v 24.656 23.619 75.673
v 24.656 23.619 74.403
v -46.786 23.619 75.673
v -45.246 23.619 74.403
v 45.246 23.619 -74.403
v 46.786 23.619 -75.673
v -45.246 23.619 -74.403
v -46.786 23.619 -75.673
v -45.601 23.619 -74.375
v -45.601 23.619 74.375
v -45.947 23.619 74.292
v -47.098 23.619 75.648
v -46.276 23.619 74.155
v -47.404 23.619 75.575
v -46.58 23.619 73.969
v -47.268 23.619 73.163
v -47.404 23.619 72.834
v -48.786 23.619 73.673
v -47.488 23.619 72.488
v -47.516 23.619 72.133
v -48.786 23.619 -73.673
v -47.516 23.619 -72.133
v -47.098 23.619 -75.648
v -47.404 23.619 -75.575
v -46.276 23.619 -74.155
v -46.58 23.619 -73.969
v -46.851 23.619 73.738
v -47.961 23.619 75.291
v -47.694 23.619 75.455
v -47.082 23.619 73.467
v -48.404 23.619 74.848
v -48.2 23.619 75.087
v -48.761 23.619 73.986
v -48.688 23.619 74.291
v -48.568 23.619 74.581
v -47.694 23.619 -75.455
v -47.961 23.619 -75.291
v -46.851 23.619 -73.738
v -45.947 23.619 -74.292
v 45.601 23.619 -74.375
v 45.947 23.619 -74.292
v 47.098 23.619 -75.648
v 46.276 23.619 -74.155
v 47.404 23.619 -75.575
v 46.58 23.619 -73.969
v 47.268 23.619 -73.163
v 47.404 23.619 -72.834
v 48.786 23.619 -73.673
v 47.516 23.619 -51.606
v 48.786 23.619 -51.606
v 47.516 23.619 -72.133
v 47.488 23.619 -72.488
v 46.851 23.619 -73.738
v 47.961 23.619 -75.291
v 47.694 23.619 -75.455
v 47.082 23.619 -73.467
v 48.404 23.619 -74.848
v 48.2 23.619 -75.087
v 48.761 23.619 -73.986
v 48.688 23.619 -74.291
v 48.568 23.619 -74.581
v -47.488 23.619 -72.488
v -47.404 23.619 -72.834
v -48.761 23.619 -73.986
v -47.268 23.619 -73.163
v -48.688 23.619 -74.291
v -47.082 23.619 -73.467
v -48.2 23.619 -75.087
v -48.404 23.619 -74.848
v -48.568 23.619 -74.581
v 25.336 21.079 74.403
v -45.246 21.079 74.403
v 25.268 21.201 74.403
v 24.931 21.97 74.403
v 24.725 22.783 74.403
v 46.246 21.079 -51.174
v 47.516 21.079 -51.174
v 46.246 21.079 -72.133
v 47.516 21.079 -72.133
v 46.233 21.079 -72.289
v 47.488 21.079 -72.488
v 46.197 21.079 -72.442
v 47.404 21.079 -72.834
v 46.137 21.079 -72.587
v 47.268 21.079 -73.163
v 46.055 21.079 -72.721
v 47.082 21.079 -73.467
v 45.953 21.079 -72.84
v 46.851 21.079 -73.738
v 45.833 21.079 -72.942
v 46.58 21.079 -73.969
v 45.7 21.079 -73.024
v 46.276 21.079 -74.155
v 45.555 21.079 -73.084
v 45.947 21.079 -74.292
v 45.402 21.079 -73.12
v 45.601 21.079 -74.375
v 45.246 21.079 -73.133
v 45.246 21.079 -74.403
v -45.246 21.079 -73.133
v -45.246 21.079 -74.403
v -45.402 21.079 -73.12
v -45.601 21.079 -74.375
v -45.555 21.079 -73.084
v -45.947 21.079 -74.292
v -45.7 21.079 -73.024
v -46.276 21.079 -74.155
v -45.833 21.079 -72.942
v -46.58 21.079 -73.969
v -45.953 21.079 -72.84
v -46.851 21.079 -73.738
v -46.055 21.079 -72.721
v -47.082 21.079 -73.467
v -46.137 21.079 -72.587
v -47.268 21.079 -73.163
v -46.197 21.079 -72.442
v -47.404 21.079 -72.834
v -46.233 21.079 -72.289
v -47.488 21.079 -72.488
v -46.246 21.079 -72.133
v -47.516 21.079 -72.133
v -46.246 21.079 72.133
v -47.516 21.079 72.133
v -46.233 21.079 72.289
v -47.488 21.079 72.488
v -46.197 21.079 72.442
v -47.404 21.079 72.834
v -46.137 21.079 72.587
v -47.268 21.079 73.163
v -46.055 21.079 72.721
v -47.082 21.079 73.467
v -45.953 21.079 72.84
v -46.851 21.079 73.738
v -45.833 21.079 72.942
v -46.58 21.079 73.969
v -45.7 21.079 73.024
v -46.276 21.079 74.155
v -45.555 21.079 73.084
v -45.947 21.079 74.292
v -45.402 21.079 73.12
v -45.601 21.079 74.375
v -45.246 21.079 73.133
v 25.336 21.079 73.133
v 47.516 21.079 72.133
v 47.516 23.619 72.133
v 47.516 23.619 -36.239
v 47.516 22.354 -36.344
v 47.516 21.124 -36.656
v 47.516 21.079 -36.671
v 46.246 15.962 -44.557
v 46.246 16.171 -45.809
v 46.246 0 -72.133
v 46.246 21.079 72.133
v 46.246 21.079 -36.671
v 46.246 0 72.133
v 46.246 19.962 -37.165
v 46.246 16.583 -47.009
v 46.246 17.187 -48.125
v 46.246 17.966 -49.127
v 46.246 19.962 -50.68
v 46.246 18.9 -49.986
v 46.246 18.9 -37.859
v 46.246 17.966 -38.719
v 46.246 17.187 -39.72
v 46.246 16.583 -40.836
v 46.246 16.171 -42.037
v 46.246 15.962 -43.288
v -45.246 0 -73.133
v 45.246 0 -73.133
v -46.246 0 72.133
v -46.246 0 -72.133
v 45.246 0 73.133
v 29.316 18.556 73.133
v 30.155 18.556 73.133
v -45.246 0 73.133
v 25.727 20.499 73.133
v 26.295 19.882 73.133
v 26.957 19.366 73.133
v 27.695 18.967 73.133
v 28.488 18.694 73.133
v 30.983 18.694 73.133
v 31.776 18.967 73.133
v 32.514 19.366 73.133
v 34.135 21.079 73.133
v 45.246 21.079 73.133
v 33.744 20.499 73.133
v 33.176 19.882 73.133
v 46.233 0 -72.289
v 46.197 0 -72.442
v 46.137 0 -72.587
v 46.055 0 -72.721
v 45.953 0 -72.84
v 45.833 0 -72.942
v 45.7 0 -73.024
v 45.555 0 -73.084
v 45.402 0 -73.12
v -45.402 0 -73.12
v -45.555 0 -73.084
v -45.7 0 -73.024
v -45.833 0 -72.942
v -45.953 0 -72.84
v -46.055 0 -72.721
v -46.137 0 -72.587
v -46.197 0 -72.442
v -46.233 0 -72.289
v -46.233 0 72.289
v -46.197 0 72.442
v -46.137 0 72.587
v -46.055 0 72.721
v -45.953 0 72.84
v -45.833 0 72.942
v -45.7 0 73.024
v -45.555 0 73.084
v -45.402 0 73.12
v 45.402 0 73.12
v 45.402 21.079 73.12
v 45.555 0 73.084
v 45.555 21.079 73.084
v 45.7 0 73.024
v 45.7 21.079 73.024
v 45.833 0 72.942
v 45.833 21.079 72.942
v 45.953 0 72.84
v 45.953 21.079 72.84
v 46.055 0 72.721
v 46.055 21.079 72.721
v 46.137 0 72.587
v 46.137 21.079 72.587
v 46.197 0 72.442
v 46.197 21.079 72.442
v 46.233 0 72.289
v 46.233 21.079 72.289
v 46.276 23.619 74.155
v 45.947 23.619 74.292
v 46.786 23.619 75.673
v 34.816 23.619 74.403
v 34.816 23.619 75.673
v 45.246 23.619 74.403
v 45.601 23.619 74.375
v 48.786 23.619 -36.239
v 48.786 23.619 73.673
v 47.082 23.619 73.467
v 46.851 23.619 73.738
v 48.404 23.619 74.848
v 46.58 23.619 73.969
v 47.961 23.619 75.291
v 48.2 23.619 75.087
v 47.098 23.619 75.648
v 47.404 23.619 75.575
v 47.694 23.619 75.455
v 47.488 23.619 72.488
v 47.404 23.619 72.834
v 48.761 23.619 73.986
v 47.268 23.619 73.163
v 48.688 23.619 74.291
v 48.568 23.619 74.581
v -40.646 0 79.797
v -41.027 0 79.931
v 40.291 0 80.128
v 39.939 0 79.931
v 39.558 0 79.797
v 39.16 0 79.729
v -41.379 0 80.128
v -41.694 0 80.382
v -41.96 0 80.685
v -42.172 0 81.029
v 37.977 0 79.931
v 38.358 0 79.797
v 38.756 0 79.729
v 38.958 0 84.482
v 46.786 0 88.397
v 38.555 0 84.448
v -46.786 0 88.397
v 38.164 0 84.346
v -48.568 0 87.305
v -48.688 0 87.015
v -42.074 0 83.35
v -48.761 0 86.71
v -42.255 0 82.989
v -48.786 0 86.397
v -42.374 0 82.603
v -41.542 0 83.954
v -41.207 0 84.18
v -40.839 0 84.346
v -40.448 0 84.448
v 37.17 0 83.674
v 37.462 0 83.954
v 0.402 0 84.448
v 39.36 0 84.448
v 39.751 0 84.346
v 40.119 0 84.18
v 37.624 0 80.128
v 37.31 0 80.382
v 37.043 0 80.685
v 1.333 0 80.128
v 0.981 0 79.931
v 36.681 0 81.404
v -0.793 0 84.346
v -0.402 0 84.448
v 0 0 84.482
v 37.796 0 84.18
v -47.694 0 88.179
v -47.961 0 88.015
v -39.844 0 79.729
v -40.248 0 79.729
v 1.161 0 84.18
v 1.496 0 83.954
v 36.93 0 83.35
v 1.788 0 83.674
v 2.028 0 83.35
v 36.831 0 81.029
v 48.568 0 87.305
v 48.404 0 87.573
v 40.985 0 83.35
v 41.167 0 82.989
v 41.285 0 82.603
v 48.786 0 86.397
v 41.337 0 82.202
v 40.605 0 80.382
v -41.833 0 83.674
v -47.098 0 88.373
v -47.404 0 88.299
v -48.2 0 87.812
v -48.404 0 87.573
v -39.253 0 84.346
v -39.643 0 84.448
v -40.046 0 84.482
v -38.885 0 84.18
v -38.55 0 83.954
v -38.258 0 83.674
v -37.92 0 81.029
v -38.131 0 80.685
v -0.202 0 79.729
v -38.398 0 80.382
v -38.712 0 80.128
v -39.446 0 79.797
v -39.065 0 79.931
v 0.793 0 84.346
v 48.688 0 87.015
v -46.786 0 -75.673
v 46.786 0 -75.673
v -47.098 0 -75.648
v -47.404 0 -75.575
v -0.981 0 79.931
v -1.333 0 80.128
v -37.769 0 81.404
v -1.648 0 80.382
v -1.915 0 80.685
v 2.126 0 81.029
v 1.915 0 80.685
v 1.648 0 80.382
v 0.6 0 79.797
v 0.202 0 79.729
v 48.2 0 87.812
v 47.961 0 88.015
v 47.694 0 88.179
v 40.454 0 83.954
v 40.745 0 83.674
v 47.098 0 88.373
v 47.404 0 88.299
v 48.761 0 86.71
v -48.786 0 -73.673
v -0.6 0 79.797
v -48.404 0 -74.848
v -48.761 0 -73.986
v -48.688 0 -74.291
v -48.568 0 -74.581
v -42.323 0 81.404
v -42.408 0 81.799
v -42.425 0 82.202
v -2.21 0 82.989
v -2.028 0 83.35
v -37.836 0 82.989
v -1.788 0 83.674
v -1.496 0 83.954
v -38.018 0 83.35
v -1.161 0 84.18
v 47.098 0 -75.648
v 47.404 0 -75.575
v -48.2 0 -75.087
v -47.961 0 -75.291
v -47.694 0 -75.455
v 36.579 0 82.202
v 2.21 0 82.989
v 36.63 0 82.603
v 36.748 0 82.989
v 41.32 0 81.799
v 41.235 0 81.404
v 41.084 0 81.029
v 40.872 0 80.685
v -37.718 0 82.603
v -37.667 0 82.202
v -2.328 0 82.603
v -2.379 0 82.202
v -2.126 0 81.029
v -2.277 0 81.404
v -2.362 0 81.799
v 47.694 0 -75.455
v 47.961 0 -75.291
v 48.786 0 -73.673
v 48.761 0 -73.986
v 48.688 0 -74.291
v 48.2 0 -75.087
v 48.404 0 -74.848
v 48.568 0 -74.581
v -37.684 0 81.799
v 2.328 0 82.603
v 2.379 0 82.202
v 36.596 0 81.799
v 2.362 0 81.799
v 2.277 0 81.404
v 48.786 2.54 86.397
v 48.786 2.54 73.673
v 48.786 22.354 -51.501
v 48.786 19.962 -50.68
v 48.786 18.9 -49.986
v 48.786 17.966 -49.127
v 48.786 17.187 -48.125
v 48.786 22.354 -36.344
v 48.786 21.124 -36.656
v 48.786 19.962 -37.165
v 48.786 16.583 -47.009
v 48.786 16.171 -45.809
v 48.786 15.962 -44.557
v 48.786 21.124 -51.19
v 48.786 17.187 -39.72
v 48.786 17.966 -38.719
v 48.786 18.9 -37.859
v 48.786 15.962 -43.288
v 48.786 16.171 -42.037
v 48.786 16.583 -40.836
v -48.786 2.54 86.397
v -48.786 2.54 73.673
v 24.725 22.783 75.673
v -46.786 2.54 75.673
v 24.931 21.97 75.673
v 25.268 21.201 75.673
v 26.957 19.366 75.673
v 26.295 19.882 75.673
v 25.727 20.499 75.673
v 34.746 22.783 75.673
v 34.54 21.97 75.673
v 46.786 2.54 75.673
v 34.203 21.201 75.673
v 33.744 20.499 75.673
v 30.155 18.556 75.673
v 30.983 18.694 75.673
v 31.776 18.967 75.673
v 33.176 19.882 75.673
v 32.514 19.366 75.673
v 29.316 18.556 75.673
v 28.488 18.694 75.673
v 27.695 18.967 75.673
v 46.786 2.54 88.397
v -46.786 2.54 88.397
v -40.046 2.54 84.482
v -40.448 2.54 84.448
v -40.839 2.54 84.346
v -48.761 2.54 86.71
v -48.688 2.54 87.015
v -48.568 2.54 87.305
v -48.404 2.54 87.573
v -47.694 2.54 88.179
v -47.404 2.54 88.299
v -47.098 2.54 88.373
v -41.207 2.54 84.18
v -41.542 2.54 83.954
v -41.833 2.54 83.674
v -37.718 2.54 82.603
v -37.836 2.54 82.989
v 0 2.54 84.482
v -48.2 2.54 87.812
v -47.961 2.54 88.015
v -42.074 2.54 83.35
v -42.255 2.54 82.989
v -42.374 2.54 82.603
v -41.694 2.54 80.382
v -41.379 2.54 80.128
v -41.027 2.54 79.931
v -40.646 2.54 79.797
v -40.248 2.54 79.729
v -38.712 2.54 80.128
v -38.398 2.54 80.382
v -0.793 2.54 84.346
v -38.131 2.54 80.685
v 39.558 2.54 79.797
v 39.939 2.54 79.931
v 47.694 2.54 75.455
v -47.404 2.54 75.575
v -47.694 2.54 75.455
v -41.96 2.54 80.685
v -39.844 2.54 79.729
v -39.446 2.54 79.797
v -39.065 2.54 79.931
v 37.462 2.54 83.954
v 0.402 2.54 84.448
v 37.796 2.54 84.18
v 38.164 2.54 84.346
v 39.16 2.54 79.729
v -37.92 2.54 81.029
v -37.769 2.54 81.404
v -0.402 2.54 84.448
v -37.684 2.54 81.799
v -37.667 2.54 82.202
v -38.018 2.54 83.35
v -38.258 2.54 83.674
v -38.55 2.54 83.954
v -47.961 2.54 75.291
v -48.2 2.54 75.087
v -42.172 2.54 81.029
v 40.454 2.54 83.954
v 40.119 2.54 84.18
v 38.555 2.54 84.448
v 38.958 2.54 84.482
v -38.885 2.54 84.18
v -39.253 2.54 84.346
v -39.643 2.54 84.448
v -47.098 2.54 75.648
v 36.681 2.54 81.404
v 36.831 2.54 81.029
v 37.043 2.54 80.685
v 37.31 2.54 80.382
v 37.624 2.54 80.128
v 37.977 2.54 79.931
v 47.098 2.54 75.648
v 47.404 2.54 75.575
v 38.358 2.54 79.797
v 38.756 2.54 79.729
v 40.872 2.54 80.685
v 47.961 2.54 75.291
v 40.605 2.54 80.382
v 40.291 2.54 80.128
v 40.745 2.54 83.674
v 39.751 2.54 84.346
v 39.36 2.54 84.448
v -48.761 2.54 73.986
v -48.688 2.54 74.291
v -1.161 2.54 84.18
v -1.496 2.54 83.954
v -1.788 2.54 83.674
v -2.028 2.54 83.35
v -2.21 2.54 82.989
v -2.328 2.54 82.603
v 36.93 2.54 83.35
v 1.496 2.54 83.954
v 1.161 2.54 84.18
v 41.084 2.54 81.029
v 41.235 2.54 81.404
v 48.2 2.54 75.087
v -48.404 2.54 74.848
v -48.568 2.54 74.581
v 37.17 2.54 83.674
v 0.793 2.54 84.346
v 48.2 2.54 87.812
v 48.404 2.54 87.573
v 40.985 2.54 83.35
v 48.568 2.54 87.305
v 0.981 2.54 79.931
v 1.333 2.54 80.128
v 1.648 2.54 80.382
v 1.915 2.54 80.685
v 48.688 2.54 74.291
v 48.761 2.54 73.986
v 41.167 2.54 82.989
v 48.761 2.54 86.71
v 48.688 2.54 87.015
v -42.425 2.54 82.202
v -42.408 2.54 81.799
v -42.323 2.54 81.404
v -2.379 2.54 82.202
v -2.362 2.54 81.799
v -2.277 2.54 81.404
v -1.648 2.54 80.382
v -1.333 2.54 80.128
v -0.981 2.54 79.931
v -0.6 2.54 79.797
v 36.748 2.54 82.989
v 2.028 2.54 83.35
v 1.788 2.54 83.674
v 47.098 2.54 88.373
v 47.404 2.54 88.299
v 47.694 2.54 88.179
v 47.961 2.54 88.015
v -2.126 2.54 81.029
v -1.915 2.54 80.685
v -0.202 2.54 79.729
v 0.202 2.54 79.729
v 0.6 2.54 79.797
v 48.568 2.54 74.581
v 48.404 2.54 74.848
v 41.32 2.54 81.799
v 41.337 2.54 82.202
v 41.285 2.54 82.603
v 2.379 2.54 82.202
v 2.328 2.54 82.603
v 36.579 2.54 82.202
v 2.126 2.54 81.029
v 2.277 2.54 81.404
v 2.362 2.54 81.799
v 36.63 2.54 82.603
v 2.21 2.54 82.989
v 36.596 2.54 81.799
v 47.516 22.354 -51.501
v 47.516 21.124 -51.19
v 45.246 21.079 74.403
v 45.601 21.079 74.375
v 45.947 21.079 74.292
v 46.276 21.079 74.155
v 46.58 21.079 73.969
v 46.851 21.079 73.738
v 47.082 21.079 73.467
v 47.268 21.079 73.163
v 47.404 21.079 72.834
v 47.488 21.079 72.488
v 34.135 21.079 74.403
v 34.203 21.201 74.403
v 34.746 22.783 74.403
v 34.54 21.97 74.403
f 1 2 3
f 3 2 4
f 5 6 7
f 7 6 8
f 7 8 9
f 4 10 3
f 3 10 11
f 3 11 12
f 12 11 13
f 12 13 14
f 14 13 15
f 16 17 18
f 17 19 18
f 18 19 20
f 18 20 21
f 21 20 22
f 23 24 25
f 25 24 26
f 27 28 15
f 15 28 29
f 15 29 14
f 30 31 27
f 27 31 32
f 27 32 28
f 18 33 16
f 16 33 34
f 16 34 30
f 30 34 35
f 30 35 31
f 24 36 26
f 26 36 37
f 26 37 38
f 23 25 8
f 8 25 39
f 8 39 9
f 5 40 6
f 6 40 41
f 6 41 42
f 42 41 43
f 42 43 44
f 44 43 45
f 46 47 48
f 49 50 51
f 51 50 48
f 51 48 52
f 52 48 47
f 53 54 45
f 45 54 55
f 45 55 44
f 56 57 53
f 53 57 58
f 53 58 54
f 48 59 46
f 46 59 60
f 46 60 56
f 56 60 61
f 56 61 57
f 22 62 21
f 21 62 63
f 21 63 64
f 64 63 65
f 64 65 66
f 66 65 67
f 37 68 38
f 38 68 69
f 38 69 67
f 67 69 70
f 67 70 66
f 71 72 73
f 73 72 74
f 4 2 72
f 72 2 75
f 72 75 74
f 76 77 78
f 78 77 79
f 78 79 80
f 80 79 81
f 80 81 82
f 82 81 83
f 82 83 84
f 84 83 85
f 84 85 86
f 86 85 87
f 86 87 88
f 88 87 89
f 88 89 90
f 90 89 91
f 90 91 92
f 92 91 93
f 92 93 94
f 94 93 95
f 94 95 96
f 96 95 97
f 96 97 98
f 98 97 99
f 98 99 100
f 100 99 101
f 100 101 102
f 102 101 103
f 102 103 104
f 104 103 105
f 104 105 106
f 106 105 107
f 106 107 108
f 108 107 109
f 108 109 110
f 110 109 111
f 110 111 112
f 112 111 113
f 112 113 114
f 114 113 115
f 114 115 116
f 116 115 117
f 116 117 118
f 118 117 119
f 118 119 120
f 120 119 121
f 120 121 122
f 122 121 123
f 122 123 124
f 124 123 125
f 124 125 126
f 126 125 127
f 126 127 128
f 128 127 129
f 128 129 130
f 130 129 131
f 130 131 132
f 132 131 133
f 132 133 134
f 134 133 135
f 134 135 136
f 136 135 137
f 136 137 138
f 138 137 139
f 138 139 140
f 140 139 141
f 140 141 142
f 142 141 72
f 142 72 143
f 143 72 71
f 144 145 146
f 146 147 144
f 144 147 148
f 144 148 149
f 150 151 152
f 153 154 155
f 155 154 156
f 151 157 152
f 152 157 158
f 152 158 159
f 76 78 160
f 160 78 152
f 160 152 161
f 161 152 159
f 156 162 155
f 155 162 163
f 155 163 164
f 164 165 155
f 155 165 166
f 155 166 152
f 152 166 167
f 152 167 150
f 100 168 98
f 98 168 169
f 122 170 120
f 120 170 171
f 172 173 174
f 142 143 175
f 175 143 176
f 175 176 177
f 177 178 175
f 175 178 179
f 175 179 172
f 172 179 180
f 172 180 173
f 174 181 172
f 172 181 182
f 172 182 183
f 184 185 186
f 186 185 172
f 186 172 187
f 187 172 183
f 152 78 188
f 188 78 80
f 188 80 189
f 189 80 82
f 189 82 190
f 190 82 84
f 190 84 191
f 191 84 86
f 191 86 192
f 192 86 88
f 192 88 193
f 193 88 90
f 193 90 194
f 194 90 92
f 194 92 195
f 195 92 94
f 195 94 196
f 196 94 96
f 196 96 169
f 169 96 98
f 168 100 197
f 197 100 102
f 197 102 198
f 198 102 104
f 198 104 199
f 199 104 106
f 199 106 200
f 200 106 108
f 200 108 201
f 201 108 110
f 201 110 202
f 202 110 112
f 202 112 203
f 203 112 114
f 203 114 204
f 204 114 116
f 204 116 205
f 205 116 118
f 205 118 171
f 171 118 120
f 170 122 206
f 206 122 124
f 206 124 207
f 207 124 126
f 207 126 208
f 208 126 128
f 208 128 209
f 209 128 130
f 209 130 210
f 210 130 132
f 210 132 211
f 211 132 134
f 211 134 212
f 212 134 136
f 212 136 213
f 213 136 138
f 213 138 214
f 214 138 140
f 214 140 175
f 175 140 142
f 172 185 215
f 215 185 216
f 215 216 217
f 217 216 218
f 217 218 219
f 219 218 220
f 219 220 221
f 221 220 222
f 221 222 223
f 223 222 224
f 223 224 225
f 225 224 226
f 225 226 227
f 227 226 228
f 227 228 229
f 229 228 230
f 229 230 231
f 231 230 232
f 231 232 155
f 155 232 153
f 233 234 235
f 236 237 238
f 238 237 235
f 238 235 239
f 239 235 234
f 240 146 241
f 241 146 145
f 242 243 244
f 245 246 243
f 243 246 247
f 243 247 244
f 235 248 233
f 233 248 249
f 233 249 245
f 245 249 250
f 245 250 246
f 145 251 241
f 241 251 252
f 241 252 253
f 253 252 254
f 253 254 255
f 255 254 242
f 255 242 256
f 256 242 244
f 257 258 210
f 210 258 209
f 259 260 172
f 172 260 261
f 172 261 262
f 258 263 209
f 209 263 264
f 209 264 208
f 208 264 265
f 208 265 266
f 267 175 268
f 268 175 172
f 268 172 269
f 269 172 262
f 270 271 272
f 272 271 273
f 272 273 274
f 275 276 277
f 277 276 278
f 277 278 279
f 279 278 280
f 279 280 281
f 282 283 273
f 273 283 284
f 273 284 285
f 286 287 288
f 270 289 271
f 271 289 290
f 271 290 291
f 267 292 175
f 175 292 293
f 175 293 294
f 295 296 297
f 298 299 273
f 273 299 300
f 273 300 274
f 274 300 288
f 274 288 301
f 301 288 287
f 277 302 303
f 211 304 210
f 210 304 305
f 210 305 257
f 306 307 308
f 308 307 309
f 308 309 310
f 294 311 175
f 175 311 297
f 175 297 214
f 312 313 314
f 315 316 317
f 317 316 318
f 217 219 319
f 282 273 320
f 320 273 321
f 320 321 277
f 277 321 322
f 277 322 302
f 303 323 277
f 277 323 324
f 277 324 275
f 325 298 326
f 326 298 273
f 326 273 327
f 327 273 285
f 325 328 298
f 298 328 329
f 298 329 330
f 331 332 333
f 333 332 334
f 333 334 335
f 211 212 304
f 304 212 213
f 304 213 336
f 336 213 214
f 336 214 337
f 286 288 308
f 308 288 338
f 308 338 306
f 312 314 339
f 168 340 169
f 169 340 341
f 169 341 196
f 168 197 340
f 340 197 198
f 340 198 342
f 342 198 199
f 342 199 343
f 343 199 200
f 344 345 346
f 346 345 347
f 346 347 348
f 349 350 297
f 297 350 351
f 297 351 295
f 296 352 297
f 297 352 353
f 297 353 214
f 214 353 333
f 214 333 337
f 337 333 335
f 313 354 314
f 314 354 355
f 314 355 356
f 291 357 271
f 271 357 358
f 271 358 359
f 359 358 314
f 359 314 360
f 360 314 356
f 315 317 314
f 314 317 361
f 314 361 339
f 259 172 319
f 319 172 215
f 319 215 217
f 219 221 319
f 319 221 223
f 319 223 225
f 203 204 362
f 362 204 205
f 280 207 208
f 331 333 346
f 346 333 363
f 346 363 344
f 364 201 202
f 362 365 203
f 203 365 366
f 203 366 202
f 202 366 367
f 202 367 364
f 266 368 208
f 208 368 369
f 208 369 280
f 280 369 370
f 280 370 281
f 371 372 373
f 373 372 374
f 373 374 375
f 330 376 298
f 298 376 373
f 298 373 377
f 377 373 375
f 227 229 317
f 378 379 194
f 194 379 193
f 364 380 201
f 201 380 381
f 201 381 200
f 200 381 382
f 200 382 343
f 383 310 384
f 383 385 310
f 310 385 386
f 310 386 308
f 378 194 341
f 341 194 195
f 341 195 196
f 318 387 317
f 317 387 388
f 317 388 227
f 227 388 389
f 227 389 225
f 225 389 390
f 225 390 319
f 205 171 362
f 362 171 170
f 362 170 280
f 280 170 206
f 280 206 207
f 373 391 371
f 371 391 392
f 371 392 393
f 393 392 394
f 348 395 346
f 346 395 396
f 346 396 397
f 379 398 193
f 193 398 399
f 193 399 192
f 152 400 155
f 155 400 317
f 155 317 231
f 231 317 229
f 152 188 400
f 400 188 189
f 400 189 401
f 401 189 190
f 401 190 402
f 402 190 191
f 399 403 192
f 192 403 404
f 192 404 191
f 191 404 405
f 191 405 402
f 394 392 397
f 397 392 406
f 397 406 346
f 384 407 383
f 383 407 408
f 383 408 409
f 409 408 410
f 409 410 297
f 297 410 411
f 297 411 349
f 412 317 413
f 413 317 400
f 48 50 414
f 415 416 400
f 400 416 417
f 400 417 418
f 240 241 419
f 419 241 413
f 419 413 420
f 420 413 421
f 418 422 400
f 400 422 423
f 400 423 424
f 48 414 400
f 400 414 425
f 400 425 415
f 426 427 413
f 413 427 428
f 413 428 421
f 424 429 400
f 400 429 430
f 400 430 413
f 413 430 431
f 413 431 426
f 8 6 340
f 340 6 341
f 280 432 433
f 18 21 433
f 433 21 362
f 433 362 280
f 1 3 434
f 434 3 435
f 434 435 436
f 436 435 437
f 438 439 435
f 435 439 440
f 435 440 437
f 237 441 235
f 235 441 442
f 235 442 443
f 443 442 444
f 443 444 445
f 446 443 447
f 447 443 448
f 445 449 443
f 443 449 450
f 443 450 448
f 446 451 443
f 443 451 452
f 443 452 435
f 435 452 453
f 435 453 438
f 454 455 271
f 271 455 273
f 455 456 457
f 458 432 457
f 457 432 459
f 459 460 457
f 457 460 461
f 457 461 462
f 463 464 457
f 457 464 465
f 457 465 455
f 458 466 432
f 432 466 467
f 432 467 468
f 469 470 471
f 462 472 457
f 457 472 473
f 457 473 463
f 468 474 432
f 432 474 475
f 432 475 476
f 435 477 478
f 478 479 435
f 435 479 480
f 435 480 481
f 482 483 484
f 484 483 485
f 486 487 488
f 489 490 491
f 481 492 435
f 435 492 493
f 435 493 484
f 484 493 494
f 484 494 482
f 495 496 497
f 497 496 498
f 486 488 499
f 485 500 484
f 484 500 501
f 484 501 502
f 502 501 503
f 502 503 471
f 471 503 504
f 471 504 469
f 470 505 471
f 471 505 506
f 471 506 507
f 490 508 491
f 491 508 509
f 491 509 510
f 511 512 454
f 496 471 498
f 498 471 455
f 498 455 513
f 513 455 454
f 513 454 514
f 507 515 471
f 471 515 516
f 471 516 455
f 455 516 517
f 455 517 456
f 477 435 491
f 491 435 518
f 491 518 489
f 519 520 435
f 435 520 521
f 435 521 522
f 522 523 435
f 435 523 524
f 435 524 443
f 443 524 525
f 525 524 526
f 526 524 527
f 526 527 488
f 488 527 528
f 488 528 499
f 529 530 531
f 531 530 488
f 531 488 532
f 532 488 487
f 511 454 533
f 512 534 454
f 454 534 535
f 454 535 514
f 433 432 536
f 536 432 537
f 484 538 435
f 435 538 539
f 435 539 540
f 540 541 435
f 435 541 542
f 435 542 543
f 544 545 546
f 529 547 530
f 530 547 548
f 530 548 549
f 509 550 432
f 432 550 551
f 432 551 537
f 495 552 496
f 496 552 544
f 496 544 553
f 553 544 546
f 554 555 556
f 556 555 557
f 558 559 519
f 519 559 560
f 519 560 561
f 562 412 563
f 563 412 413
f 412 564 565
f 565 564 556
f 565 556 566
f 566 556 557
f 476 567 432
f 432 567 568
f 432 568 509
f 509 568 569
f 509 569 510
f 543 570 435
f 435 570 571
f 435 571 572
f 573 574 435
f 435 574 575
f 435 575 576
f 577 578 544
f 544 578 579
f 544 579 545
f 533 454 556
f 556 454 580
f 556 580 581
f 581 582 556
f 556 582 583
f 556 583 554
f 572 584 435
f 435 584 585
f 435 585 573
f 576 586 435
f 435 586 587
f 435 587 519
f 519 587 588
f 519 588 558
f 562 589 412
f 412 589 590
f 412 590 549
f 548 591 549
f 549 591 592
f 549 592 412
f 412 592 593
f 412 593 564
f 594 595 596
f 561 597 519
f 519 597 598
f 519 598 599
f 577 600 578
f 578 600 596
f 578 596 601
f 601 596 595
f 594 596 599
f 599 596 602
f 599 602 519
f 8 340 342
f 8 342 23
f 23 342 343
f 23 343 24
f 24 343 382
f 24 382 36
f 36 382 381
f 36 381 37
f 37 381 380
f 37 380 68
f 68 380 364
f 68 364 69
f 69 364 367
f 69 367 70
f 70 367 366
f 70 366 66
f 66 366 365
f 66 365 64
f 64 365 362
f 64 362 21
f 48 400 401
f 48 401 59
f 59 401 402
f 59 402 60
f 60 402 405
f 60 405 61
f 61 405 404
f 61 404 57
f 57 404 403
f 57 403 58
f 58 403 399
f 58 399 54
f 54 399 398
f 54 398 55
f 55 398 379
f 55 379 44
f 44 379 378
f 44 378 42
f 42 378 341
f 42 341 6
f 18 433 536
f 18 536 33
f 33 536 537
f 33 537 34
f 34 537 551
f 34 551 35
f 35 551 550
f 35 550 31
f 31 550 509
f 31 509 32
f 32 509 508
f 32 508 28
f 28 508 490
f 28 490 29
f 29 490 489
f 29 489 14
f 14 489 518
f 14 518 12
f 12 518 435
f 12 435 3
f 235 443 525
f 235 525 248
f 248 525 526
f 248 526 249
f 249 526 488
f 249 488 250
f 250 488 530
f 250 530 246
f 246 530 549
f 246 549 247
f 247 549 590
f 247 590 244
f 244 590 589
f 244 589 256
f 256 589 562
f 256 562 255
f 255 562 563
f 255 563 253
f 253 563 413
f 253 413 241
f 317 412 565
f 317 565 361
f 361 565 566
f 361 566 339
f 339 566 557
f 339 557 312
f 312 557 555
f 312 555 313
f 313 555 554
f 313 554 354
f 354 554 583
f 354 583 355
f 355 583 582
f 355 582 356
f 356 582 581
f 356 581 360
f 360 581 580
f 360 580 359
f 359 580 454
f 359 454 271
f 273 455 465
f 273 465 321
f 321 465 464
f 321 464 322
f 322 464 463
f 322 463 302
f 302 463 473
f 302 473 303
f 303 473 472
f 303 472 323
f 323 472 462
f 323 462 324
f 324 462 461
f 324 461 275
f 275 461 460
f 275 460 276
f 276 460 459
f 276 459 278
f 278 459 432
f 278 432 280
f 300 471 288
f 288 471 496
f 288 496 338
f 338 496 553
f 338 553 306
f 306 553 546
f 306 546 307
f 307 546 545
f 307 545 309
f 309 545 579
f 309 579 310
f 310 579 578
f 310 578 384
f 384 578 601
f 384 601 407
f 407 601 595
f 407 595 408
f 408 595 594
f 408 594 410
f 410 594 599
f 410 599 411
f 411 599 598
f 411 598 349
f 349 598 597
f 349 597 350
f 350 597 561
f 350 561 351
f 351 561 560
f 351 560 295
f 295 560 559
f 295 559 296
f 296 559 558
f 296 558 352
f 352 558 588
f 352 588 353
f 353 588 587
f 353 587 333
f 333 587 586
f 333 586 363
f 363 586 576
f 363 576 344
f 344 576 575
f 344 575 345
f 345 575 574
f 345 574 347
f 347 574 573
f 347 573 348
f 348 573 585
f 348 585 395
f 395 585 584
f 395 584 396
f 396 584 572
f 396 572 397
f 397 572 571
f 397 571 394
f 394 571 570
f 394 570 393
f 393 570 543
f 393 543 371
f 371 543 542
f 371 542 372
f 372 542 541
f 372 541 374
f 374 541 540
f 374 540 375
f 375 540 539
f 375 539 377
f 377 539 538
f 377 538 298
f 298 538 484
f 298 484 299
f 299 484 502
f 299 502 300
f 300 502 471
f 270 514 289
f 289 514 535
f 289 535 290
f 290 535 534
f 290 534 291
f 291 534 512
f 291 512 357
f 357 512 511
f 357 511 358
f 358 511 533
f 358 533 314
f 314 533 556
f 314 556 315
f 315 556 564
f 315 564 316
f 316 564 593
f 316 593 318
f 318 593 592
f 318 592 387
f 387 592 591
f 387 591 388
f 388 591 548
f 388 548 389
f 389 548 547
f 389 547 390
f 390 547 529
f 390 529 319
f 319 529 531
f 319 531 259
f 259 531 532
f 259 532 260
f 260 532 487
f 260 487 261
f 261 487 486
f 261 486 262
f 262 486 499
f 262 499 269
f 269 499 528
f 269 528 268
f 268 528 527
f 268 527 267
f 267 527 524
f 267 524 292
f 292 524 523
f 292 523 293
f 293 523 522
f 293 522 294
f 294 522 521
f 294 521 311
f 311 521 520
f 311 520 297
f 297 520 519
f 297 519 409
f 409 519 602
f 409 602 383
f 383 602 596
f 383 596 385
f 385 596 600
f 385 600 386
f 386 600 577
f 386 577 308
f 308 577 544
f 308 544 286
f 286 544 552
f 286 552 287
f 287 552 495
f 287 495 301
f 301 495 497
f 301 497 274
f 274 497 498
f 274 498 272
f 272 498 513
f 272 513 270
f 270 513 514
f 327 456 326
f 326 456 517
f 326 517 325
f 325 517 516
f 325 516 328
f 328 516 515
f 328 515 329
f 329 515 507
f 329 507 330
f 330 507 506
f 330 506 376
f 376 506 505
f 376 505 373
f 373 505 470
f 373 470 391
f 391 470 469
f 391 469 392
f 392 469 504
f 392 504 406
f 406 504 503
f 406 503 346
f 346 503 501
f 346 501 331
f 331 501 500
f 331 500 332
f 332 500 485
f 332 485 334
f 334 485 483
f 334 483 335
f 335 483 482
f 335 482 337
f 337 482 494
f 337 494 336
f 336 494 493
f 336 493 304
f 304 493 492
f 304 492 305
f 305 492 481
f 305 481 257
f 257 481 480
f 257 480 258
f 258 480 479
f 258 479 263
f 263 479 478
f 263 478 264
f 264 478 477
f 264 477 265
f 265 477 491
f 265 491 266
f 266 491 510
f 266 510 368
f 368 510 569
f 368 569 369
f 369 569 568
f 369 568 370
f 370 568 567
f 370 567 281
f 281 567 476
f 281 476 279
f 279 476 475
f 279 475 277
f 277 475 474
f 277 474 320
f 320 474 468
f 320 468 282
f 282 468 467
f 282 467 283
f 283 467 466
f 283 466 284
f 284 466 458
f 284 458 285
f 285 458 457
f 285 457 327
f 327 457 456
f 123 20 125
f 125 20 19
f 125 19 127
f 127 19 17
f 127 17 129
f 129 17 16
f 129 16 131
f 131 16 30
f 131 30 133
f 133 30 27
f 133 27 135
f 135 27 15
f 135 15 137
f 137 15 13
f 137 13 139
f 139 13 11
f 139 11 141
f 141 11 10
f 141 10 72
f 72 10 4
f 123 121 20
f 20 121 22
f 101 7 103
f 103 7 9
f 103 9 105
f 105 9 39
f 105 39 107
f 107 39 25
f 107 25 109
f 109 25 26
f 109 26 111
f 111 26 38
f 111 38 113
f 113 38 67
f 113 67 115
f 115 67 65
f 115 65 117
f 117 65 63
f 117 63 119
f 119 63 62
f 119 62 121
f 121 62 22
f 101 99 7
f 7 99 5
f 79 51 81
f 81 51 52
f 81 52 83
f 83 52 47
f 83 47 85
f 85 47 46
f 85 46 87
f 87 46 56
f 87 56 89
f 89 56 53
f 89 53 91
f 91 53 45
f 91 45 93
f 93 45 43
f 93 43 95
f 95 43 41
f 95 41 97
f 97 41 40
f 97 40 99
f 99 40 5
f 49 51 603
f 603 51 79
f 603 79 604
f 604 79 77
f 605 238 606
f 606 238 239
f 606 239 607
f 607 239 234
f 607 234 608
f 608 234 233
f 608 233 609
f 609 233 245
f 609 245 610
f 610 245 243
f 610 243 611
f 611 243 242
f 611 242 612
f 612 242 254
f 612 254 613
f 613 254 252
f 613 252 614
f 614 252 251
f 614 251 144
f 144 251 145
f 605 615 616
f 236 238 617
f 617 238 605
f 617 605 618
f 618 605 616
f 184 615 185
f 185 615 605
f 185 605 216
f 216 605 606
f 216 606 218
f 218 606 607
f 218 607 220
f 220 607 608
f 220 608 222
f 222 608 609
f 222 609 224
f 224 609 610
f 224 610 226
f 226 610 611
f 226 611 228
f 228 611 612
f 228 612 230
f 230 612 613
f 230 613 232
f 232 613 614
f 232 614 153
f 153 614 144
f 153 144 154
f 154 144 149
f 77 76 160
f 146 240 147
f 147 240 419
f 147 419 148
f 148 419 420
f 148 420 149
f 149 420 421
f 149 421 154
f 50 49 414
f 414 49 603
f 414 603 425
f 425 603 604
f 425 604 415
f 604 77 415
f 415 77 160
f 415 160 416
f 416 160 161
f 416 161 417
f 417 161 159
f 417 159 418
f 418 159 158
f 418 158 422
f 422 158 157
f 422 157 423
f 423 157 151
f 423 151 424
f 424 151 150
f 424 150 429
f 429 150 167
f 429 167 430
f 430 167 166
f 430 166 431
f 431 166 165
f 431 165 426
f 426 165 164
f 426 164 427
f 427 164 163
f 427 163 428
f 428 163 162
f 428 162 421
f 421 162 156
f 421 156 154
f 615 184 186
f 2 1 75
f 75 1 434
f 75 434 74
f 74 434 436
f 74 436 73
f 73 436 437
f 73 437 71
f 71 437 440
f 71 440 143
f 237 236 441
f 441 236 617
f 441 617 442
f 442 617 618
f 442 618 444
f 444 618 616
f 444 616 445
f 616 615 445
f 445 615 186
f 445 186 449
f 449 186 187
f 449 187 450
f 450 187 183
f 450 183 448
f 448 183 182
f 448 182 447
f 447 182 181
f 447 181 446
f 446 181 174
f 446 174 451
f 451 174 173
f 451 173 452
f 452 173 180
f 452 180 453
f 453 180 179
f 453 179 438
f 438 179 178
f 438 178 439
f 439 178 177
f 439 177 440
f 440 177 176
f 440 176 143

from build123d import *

# Parameters (mm, degrees)
SKETCH1_W                          = 97.571055574
SKETCH1_H                          = 151.345533826
SKETCH1_W_2                        = 92.491055574
SKETCH1_H_2                        = 146.265533826
BOSS_EXTRUDE1_DEPTH                = 23.619000006
SKETCH2_W                          = 97.571055574
SKETCH2_H                          = 12.724538291
BOSS_EXTRUDE2_DEPTH                = 2.54
FILLET1_R                          = 2
FILLET2_R                          = 1
F_3_16_0_1875_DIAMETER_HOLE1_D     = 4.7625
F_3_16_0_1875_DIAMETER_HOLE1_DEPTH = 20.066
F_3_16_0_1875_DIAMETER_HOLE1_TIP   = 1.430799349
CUT_EXTRUDE1_DEPTH                 = 2.54
CUT_EXTRUDE2_REACH                 = 99.571
SKETCH8_R                          = 7.6835
CUT_EXTRUDE3_REACH                 = 153.346
SKETCH9_R                          = 5.08


with BuildPart() as part:
    # Sketch1 → Boss-Extrude1 (new body)
    with BuildSketch(Plane(origin=(0, 0, 0), x_dir=(1, 0, 0), z_dir=(0, 1, 0))):
        Rectangle(SKETCH1_W, SKETCH1_H)
        Rectangle(SKETCH1_W_2, SKETCH1_H_2, mode=Mode.SUBTRACT)
    extrude(amount=BOSS_EXTRUDE1_DEPTH)

    # Sketch2 → Boss-Extrude2 (add)
    with BuildSketch(Plane.XZ):
        with Locations((0, 82.035036058)):
            Rectangle(SKETCH2_W, SKETCH2_H)
    extrude(amount=-BOSS_EXTRUDE2_DEPTH)

    # Fillet1
    fillet1_edges = [part.edges().sort_by_distance(p)[0] for p in [
        (-48.785527787, 1.27, 88.397305204),
        (48.785527787, 1.27, 88.397305204),
        (48.785527787, 13.079500003, 75.672766913),
        (-48.785527787, 13.079500003, 75.672766913),
        (-48.785527787, 11.809500003, -75.672766913),
        (48.785527787, 11.809500003, -75.672766913),
    ]]
    fillet(fillet1_edges, radius=FILLET1_R)

    # Fillet2
    fillet2_edges = [part.edges().sort_by_distance(p)[0] for p in [
        (46.245527787, 11.809500003, 73.132766913),
        (46.245527787, 11.809500003, -73.132766913),
        (-46.245527787, 11.809500003, -73.132766913),
        (-46.245527787, 11.809500003, 73.132766913),
    ]]
    fillet(fillet2_edges, radius=FILLET2_R)

    # 3/16 (0.1875) Diameter Hole1
    with Locations(Plane(origin=(0, 2.54, 0), x_dir=(1, 0, 0), z_dir=(0, 1, 0))):
        with Locations((-40.04587174, -82.10120048), (38.957668704, -82.10120048), (0, -82.10120048)):
            Hole(F_3_16_0_1875_DIAMETER_HOLE1_D / 2, depth=F_3_16_0_1875_DIAMETER_HOLE1_DEPTH)
            with Locations((0, 0, -(F_3_16_0_1875_DIAMETER_HOLE1_DEPTH + F_3_16_0_1875_DIAMETER_HOLE1_TIP / 2))):  # 118° drill point
                Cone(0, F_3_16_0_1875_DIAMETER_HOLE1_D / 2, F_3_16_0_1875_DIAMETER_HOLE1_TIP, mode=Mode.SUBTRACT)

    # Sketch5 → Cut-Extrude1 (cut)
    with BuildSketch(Plane(origin=(0, 23.619000006, 0), x_dir=(1, 0, 0), z_dir=(0, 1, 0))):
        with BuildLine():
            Line((-45.245527787, -74.402766913), (45.245527787, -74.402766913))
            ThreePointArc((45.245527787, -74.402766913), (46.85066018, -73.737899306), (47.515527787, -72.132766913))
            Line((47.515527787, -72.132766913), (47.515527787, 72.132766913))
            ThreePointArc((47.515527787, 72.132766913), (46.85066018, 73.737899306), (45.245527787, 74.402766913))
            Line((45.245527787, 74.402766913), (-45.245527787, 74.402766913))
            ThreePointArc((-45.245527787, 74.402766913), (-46.85066018, 73.737899306), (-47.515527787, 72.132766913))
            Line((-47.515527787, 72.132766913), (-47.515527787, -72.132766913))
            ThreePointArc((-47.515527787, -72.132766913), (-46.85066018, -73.737899306), (-45.245527787, -74.402766913))
        make_face()
        with BuildLine():
            Line((-46.245527787, 72.132766913), (-46.245527787, -72.132766913))
            ThreePointArc((-46.245527787, -72.132766913), (-45.952634568, -72.839873694), (-45.245527787, -73.132766913))
            Line((-45.245527787, -73.132766913), (45.245527787, -73.132766913))
            ThreePointArc((45.245527787, -73.132766913), (45.952634568, -72.839873694), (46.245527787, -72.132766913))
            Line((46.245527787, -72.132766913), (46.245527787, 72.132766913))
            ThreePointArc((46.245527787, 72.132766913), (45.952634568, 72.839873694), (45.245527787, 73.132766913))
            Line((45.245527787, 73.132766913), (-45.245527787, 73.132766913))
            ThreePointArc((-45.245527787, 73.132766913), (-45.952634568, 72.839873694), (-46.245527787, 72.132766913))
        make_face(mode=Mode.SUBTRACT)
    extrude(amount=-CUT_EXTRUDE1_DEPTH, mode=Mode.SUBTRACT)

    # Sketch8 → Cut-Extrude2 (cut, up to next)
    with BuildSketch(Plane(origin=(48.785527787, 0, 0), x_dir=(0, 0, -1), z_dir=(1, 0, 0)), mode=Mode.PRIVATE) as cut_extrude2_sk1:
        with Locations((43.922766913, 23.619000006)):
            Circle(SKETCH8_R)
    cut_extrude2_tool1 = extrude(cut_extrude2_sk1.sketch, amount=-CUT_EXTRUDE2_REACH, mode=Mode.PRIVATE) & part.part
    add(cut_extrude2_tool1.solids().sort_by_distance((48.785528, 23.619, -43.922767))[0], mode=Mode.SUBTRACT)

    # Sketch9 → Cut-Extrude3 (cut, up to next)
    with BuildSketch(Plane.XY.offset(75.672766913), mode=Mode.PRIVATE) as cut_extrude3_sk1:
        with Locations((29.735527787, 23.619000006)):
            Circle(SKETCH9_R)
    cut_extrude3_tool1 = extrude(cut_extrude3_sk1.sketch, amount=-CUT_EXTRUDE3_REACH, mode=Mode.PRIVATE) & part.part
    add(cut_extrude3_tool1.solids().sort_by_distance((29.735528, 23.619, 75.672767))[0], mode=Mode.SUBTRACT)


solid = part.part
